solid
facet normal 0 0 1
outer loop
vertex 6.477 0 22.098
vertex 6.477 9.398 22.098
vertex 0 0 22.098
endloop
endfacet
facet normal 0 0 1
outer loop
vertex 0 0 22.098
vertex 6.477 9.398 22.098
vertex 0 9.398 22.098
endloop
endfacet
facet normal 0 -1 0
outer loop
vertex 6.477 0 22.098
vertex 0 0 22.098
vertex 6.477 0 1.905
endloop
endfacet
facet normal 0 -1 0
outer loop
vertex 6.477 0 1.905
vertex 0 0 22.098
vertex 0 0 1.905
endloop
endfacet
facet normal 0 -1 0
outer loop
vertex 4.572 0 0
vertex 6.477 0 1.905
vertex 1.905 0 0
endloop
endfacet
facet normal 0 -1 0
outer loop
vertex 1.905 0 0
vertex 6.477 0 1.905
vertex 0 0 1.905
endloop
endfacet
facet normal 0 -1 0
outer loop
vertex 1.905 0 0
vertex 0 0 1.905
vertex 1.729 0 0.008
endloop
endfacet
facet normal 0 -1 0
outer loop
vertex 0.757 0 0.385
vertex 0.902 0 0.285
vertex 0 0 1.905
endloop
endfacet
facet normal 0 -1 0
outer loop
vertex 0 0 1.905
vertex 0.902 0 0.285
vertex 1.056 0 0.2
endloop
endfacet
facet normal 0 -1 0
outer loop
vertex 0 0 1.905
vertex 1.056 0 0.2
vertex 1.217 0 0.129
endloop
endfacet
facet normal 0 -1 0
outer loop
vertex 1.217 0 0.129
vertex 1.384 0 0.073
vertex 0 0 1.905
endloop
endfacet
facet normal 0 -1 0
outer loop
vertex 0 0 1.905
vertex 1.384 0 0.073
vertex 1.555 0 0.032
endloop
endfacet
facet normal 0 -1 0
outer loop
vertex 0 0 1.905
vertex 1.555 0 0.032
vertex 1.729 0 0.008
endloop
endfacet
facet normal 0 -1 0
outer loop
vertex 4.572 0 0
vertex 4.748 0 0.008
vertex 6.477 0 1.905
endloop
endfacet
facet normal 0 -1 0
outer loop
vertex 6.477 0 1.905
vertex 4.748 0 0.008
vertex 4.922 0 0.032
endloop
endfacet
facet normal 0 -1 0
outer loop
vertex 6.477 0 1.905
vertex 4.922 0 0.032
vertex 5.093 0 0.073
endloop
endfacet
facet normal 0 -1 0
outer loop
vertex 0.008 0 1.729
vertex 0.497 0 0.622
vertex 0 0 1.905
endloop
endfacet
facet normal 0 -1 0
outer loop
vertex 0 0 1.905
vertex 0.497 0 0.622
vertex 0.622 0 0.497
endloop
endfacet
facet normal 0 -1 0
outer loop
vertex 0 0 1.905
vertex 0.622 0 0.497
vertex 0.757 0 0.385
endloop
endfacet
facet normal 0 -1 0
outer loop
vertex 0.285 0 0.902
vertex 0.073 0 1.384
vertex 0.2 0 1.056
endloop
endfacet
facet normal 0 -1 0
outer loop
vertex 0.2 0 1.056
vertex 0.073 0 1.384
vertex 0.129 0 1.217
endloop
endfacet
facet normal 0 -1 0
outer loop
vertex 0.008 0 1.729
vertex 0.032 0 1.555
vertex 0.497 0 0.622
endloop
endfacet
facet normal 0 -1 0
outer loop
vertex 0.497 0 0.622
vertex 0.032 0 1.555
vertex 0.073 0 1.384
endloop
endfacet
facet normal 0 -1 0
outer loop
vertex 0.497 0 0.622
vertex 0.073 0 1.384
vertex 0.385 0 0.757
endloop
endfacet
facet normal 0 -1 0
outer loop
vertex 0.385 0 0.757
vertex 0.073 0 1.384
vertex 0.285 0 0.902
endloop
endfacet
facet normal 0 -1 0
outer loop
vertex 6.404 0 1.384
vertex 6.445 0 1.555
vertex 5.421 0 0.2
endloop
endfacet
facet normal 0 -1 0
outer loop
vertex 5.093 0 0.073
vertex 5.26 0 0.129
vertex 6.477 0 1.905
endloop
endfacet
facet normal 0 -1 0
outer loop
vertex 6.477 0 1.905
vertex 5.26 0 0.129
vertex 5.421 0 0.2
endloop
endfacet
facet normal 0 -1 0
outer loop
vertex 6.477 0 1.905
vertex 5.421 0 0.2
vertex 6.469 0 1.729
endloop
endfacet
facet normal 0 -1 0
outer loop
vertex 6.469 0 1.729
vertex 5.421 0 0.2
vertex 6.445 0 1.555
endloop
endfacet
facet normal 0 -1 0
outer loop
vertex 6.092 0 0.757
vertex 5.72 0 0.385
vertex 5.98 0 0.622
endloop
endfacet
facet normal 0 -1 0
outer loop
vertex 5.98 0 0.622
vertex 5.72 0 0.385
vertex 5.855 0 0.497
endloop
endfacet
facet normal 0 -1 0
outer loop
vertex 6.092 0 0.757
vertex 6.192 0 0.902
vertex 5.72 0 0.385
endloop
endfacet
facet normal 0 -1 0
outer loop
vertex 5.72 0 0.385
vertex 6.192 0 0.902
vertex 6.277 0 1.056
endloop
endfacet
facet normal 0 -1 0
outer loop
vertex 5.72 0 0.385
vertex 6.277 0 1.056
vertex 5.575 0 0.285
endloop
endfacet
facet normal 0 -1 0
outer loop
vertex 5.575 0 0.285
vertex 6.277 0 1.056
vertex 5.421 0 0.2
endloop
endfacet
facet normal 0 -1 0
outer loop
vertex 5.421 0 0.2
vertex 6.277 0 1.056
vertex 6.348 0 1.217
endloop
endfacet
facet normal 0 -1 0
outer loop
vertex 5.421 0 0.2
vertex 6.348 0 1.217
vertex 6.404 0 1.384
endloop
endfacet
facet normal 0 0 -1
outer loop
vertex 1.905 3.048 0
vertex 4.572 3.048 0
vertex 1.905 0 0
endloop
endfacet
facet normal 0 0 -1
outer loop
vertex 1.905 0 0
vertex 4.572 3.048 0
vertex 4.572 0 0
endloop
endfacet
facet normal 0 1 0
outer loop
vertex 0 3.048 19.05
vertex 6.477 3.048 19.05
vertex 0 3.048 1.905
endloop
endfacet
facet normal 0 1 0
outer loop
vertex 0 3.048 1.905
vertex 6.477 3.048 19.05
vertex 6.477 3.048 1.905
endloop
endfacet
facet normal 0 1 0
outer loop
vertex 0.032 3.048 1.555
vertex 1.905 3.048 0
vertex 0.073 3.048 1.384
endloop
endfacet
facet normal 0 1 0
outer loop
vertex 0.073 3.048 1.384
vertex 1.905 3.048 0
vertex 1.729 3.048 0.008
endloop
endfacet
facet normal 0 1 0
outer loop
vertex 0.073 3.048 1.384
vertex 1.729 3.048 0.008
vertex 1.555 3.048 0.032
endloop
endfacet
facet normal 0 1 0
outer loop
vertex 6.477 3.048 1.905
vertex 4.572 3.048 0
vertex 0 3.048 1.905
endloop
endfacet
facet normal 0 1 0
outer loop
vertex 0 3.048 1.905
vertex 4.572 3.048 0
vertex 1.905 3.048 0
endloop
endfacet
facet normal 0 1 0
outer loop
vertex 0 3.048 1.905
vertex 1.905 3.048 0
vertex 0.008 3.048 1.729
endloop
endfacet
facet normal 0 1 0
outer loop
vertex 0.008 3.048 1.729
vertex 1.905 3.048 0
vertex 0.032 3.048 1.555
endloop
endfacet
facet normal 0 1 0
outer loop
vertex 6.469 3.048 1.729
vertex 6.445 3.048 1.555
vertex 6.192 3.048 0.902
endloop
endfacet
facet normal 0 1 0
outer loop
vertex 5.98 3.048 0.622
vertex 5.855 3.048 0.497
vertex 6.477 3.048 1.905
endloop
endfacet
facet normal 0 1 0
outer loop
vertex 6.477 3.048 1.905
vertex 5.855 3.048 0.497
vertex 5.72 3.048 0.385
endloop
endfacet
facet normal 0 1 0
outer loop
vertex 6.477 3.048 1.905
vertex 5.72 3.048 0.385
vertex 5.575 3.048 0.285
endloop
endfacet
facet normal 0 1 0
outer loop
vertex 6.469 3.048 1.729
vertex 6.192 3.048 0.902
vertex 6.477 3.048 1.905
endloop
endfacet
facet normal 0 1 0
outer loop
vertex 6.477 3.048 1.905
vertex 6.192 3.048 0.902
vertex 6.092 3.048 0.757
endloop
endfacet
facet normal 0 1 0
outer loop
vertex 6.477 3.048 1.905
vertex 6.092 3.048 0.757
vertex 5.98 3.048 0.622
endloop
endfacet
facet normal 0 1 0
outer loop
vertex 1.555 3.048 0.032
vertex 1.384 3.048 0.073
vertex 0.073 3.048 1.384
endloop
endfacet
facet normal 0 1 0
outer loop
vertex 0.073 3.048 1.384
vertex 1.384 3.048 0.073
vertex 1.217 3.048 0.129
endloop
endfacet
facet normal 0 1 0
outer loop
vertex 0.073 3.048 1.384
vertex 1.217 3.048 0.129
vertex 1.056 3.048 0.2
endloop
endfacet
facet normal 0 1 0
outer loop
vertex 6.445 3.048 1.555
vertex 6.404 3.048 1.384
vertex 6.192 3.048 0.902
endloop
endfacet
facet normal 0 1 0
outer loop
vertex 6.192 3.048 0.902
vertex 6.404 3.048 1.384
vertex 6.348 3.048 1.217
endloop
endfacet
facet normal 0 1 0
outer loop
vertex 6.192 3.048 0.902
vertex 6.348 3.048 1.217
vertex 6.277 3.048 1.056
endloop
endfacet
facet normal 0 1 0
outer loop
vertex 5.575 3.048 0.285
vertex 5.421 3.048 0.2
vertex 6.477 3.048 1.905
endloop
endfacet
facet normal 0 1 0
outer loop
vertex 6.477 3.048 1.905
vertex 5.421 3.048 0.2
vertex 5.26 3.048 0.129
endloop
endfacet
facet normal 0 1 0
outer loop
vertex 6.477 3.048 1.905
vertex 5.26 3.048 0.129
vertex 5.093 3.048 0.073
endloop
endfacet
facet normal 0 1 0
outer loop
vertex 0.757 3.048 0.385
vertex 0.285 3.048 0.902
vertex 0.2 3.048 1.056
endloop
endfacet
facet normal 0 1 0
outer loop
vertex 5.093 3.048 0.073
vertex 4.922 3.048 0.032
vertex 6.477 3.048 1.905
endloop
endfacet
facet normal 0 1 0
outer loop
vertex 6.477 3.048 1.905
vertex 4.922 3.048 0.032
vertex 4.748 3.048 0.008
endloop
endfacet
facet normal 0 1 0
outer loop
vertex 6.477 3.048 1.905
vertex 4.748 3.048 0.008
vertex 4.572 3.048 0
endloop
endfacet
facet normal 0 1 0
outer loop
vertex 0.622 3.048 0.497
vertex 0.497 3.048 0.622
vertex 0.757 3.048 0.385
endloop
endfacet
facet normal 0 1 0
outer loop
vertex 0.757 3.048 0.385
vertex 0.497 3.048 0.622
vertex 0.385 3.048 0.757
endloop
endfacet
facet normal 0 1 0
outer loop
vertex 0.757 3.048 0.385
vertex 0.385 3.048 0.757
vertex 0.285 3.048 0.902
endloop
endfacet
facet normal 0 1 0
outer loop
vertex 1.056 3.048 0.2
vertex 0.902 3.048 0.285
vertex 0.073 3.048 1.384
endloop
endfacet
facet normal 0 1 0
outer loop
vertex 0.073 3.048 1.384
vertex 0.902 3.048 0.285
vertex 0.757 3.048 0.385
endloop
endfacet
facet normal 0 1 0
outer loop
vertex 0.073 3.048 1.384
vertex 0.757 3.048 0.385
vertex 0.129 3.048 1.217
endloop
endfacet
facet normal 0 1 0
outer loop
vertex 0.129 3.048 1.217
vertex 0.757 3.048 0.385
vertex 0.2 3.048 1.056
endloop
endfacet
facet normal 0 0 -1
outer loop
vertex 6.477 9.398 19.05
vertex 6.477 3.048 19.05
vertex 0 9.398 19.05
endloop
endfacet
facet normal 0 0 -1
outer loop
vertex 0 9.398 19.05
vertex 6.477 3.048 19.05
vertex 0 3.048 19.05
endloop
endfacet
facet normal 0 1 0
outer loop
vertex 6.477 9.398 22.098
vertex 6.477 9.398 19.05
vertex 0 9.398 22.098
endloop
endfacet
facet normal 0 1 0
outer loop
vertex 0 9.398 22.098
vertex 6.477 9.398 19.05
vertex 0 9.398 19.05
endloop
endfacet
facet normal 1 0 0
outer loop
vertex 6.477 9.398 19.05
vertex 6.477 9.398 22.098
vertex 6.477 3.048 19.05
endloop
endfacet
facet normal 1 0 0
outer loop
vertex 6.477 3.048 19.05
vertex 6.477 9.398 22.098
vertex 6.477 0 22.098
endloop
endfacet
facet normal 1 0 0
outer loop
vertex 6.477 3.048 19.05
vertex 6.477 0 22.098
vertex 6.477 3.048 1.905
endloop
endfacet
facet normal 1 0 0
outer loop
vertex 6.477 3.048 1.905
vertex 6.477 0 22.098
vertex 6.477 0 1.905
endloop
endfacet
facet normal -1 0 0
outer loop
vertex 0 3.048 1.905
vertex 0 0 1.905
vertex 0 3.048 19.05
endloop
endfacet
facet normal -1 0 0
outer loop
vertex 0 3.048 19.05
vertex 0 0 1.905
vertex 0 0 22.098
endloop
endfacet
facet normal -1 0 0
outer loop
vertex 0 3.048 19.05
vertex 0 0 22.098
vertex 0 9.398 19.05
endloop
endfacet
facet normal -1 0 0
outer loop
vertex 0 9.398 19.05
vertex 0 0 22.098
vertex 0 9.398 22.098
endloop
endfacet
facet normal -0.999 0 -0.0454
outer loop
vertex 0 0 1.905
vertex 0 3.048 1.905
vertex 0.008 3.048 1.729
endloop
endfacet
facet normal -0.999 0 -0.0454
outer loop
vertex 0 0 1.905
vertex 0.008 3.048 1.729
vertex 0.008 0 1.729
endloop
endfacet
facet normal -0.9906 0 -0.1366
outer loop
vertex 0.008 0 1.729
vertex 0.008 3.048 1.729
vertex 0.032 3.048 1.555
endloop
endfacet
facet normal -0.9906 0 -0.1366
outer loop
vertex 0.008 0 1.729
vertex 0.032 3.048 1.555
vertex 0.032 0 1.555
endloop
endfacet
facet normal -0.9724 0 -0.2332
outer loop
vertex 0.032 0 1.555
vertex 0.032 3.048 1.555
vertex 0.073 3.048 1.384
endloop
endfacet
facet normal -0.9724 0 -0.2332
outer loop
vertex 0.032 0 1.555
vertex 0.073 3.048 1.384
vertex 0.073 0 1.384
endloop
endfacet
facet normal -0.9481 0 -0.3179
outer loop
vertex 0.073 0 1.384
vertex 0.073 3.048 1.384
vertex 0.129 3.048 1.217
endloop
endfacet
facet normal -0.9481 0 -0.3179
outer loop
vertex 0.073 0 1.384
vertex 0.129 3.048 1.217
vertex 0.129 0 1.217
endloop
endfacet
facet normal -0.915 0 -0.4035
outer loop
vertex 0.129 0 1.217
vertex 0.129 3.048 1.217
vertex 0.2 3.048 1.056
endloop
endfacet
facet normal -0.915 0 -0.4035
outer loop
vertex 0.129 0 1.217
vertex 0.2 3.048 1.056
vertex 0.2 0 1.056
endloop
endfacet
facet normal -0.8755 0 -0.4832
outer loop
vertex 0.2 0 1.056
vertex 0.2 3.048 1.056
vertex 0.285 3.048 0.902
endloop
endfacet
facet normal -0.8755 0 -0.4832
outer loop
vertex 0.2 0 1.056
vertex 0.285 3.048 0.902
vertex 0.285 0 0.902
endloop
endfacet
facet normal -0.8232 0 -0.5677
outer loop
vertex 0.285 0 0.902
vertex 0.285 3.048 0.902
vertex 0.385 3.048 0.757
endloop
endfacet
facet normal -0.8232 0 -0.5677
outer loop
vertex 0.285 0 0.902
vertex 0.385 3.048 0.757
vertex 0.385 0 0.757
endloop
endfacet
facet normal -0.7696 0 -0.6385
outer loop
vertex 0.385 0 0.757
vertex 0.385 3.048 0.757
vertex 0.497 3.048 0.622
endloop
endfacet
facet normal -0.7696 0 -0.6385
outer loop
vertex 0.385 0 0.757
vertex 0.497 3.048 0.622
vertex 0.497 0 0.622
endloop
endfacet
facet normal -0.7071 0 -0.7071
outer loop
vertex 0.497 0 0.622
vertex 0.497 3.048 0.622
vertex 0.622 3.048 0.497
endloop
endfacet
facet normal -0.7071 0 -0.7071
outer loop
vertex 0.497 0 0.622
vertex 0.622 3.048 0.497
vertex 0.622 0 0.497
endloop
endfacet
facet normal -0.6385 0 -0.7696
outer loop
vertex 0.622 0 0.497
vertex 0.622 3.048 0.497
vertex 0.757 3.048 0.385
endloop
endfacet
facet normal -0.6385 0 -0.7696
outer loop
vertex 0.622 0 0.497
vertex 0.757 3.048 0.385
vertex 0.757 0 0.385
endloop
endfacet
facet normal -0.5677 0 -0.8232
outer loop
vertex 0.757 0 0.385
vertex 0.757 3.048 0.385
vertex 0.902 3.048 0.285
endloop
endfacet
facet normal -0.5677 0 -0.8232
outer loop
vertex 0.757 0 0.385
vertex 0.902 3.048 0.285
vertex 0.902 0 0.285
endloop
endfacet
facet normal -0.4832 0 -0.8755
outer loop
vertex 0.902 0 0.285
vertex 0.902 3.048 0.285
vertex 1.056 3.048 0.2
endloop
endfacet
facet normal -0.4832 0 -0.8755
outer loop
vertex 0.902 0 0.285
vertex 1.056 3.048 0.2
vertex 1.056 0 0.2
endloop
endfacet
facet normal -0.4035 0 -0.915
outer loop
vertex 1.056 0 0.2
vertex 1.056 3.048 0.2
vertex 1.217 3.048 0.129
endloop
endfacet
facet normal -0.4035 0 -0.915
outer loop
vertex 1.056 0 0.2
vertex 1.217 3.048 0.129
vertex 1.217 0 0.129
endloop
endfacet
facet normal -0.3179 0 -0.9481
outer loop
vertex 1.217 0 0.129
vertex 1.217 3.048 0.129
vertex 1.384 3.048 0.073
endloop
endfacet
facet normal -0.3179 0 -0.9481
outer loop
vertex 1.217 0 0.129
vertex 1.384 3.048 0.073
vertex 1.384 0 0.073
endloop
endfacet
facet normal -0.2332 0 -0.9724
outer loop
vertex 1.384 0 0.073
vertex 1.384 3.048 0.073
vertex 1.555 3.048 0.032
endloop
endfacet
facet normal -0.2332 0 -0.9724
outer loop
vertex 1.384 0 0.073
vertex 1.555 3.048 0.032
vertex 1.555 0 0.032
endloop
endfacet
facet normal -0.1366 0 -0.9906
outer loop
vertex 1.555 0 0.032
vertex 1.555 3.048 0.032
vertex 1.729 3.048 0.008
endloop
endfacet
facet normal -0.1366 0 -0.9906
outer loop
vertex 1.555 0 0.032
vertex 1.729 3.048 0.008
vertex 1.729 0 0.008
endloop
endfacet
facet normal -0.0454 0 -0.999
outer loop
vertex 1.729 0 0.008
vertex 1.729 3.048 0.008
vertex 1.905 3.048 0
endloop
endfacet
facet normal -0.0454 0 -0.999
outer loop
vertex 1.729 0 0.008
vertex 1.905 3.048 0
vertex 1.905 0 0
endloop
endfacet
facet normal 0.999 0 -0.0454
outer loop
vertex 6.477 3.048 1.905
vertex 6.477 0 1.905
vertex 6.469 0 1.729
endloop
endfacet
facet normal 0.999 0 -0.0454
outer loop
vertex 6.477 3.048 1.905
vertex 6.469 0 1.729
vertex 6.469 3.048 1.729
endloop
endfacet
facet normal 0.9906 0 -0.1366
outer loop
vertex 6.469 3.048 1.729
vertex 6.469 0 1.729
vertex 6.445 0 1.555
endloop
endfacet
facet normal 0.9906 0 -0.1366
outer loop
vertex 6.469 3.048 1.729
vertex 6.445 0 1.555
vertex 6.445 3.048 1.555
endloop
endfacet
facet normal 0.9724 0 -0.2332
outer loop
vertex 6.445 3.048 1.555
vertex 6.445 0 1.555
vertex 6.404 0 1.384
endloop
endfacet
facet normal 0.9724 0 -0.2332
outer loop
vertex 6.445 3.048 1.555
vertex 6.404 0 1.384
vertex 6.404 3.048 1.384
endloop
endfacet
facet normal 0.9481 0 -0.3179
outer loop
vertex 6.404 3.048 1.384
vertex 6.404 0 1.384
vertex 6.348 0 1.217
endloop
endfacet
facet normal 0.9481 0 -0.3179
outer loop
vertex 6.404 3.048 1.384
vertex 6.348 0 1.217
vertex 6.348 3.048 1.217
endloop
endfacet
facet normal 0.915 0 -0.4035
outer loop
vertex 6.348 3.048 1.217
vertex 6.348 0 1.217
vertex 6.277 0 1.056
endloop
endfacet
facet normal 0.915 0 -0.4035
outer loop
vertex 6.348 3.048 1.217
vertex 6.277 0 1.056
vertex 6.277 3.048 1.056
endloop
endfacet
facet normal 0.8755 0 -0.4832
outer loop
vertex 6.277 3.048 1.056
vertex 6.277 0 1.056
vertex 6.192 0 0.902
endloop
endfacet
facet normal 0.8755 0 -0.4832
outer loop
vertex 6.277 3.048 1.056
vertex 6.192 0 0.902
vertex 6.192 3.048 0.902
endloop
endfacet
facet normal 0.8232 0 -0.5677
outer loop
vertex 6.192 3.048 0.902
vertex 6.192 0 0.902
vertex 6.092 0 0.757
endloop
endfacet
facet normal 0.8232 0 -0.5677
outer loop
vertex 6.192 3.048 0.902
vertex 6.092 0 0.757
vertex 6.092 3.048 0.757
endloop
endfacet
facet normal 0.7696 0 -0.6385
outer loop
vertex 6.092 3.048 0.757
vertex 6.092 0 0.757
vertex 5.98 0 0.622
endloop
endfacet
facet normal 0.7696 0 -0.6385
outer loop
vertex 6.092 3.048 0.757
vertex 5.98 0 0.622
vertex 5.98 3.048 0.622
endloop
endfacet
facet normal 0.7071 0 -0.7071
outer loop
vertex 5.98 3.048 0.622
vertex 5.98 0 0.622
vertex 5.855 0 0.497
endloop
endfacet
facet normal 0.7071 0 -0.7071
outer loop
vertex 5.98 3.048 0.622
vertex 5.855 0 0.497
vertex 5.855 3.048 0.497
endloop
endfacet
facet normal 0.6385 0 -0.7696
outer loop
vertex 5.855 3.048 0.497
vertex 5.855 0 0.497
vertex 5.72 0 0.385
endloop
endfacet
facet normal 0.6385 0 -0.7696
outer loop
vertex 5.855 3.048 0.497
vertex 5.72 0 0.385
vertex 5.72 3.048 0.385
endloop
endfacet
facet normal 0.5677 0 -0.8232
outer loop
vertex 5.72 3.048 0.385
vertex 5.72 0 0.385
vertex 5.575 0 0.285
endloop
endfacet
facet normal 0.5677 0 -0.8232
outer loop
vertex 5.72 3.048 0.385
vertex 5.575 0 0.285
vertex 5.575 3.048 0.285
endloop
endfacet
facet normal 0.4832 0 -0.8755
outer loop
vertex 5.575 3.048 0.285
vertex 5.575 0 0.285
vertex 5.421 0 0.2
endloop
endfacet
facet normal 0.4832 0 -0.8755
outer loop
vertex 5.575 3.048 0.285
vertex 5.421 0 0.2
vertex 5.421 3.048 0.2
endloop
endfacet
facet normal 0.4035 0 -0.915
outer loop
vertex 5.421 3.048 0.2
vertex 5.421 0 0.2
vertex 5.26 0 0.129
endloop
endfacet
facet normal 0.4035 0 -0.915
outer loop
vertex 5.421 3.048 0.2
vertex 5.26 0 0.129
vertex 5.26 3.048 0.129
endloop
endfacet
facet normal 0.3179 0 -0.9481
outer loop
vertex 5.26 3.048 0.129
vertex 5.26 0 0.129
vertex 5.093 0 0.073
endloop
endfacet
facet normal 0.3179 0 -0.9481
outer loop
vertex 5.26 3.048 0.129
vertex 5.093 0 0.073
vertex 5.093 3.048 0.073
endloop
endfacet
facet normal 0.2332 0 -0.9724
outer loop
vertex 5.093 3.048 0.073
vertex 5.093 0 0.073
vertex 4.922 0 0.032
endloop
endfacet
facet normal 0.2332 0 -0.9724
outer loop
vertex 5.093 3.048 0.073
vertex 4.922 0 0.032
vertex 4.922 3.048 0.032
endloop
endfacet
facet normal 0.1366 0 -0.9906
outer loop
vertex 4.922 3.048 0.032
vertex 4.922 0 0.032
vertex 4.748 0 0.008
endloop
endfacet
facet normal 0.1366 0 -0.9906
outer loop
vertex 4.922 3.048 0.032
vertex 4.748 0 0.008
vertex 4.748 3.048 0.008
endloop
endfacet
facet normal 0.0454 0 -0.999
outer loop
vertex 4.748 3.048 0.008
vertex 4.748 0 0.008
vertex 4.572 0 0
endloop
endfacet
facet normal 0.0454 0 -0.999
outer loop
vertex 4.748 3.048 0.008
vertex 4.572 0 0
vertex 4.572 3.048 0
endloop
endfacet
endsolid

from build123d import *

# Parameters (mm, degrees)
BOSS_EXTRUDE1_DEPTH = 6.477
FILLET1_R           = 1.905


with BuildPart() as part:
    # Sketch1 → Boss-Extrude1 (new body)
    with BuildSketch(Plane(origin=(0, 0, 0), x_dir=(0, 0, -1), z_dir=(1, 0, 0))):
        Polygon((-22.098, 0), (0, 0), (0, 3.048), (-19.05, 3.048), (-19.05, 9.398), (-22.098, 9.398), align=None)
    extrude(amount=BOSS_EXTRUDE1_DEPTH)

    # Fillet1
    fillet1_edges = [part.edges().sort_by_distance(p)[0] for p in [
        (6.477, 1.524, 0),
        (0, 1.524, 0),
    ]]
    fillet(fillet1_edges, radius=FILLET1_R)


solid = part.part
